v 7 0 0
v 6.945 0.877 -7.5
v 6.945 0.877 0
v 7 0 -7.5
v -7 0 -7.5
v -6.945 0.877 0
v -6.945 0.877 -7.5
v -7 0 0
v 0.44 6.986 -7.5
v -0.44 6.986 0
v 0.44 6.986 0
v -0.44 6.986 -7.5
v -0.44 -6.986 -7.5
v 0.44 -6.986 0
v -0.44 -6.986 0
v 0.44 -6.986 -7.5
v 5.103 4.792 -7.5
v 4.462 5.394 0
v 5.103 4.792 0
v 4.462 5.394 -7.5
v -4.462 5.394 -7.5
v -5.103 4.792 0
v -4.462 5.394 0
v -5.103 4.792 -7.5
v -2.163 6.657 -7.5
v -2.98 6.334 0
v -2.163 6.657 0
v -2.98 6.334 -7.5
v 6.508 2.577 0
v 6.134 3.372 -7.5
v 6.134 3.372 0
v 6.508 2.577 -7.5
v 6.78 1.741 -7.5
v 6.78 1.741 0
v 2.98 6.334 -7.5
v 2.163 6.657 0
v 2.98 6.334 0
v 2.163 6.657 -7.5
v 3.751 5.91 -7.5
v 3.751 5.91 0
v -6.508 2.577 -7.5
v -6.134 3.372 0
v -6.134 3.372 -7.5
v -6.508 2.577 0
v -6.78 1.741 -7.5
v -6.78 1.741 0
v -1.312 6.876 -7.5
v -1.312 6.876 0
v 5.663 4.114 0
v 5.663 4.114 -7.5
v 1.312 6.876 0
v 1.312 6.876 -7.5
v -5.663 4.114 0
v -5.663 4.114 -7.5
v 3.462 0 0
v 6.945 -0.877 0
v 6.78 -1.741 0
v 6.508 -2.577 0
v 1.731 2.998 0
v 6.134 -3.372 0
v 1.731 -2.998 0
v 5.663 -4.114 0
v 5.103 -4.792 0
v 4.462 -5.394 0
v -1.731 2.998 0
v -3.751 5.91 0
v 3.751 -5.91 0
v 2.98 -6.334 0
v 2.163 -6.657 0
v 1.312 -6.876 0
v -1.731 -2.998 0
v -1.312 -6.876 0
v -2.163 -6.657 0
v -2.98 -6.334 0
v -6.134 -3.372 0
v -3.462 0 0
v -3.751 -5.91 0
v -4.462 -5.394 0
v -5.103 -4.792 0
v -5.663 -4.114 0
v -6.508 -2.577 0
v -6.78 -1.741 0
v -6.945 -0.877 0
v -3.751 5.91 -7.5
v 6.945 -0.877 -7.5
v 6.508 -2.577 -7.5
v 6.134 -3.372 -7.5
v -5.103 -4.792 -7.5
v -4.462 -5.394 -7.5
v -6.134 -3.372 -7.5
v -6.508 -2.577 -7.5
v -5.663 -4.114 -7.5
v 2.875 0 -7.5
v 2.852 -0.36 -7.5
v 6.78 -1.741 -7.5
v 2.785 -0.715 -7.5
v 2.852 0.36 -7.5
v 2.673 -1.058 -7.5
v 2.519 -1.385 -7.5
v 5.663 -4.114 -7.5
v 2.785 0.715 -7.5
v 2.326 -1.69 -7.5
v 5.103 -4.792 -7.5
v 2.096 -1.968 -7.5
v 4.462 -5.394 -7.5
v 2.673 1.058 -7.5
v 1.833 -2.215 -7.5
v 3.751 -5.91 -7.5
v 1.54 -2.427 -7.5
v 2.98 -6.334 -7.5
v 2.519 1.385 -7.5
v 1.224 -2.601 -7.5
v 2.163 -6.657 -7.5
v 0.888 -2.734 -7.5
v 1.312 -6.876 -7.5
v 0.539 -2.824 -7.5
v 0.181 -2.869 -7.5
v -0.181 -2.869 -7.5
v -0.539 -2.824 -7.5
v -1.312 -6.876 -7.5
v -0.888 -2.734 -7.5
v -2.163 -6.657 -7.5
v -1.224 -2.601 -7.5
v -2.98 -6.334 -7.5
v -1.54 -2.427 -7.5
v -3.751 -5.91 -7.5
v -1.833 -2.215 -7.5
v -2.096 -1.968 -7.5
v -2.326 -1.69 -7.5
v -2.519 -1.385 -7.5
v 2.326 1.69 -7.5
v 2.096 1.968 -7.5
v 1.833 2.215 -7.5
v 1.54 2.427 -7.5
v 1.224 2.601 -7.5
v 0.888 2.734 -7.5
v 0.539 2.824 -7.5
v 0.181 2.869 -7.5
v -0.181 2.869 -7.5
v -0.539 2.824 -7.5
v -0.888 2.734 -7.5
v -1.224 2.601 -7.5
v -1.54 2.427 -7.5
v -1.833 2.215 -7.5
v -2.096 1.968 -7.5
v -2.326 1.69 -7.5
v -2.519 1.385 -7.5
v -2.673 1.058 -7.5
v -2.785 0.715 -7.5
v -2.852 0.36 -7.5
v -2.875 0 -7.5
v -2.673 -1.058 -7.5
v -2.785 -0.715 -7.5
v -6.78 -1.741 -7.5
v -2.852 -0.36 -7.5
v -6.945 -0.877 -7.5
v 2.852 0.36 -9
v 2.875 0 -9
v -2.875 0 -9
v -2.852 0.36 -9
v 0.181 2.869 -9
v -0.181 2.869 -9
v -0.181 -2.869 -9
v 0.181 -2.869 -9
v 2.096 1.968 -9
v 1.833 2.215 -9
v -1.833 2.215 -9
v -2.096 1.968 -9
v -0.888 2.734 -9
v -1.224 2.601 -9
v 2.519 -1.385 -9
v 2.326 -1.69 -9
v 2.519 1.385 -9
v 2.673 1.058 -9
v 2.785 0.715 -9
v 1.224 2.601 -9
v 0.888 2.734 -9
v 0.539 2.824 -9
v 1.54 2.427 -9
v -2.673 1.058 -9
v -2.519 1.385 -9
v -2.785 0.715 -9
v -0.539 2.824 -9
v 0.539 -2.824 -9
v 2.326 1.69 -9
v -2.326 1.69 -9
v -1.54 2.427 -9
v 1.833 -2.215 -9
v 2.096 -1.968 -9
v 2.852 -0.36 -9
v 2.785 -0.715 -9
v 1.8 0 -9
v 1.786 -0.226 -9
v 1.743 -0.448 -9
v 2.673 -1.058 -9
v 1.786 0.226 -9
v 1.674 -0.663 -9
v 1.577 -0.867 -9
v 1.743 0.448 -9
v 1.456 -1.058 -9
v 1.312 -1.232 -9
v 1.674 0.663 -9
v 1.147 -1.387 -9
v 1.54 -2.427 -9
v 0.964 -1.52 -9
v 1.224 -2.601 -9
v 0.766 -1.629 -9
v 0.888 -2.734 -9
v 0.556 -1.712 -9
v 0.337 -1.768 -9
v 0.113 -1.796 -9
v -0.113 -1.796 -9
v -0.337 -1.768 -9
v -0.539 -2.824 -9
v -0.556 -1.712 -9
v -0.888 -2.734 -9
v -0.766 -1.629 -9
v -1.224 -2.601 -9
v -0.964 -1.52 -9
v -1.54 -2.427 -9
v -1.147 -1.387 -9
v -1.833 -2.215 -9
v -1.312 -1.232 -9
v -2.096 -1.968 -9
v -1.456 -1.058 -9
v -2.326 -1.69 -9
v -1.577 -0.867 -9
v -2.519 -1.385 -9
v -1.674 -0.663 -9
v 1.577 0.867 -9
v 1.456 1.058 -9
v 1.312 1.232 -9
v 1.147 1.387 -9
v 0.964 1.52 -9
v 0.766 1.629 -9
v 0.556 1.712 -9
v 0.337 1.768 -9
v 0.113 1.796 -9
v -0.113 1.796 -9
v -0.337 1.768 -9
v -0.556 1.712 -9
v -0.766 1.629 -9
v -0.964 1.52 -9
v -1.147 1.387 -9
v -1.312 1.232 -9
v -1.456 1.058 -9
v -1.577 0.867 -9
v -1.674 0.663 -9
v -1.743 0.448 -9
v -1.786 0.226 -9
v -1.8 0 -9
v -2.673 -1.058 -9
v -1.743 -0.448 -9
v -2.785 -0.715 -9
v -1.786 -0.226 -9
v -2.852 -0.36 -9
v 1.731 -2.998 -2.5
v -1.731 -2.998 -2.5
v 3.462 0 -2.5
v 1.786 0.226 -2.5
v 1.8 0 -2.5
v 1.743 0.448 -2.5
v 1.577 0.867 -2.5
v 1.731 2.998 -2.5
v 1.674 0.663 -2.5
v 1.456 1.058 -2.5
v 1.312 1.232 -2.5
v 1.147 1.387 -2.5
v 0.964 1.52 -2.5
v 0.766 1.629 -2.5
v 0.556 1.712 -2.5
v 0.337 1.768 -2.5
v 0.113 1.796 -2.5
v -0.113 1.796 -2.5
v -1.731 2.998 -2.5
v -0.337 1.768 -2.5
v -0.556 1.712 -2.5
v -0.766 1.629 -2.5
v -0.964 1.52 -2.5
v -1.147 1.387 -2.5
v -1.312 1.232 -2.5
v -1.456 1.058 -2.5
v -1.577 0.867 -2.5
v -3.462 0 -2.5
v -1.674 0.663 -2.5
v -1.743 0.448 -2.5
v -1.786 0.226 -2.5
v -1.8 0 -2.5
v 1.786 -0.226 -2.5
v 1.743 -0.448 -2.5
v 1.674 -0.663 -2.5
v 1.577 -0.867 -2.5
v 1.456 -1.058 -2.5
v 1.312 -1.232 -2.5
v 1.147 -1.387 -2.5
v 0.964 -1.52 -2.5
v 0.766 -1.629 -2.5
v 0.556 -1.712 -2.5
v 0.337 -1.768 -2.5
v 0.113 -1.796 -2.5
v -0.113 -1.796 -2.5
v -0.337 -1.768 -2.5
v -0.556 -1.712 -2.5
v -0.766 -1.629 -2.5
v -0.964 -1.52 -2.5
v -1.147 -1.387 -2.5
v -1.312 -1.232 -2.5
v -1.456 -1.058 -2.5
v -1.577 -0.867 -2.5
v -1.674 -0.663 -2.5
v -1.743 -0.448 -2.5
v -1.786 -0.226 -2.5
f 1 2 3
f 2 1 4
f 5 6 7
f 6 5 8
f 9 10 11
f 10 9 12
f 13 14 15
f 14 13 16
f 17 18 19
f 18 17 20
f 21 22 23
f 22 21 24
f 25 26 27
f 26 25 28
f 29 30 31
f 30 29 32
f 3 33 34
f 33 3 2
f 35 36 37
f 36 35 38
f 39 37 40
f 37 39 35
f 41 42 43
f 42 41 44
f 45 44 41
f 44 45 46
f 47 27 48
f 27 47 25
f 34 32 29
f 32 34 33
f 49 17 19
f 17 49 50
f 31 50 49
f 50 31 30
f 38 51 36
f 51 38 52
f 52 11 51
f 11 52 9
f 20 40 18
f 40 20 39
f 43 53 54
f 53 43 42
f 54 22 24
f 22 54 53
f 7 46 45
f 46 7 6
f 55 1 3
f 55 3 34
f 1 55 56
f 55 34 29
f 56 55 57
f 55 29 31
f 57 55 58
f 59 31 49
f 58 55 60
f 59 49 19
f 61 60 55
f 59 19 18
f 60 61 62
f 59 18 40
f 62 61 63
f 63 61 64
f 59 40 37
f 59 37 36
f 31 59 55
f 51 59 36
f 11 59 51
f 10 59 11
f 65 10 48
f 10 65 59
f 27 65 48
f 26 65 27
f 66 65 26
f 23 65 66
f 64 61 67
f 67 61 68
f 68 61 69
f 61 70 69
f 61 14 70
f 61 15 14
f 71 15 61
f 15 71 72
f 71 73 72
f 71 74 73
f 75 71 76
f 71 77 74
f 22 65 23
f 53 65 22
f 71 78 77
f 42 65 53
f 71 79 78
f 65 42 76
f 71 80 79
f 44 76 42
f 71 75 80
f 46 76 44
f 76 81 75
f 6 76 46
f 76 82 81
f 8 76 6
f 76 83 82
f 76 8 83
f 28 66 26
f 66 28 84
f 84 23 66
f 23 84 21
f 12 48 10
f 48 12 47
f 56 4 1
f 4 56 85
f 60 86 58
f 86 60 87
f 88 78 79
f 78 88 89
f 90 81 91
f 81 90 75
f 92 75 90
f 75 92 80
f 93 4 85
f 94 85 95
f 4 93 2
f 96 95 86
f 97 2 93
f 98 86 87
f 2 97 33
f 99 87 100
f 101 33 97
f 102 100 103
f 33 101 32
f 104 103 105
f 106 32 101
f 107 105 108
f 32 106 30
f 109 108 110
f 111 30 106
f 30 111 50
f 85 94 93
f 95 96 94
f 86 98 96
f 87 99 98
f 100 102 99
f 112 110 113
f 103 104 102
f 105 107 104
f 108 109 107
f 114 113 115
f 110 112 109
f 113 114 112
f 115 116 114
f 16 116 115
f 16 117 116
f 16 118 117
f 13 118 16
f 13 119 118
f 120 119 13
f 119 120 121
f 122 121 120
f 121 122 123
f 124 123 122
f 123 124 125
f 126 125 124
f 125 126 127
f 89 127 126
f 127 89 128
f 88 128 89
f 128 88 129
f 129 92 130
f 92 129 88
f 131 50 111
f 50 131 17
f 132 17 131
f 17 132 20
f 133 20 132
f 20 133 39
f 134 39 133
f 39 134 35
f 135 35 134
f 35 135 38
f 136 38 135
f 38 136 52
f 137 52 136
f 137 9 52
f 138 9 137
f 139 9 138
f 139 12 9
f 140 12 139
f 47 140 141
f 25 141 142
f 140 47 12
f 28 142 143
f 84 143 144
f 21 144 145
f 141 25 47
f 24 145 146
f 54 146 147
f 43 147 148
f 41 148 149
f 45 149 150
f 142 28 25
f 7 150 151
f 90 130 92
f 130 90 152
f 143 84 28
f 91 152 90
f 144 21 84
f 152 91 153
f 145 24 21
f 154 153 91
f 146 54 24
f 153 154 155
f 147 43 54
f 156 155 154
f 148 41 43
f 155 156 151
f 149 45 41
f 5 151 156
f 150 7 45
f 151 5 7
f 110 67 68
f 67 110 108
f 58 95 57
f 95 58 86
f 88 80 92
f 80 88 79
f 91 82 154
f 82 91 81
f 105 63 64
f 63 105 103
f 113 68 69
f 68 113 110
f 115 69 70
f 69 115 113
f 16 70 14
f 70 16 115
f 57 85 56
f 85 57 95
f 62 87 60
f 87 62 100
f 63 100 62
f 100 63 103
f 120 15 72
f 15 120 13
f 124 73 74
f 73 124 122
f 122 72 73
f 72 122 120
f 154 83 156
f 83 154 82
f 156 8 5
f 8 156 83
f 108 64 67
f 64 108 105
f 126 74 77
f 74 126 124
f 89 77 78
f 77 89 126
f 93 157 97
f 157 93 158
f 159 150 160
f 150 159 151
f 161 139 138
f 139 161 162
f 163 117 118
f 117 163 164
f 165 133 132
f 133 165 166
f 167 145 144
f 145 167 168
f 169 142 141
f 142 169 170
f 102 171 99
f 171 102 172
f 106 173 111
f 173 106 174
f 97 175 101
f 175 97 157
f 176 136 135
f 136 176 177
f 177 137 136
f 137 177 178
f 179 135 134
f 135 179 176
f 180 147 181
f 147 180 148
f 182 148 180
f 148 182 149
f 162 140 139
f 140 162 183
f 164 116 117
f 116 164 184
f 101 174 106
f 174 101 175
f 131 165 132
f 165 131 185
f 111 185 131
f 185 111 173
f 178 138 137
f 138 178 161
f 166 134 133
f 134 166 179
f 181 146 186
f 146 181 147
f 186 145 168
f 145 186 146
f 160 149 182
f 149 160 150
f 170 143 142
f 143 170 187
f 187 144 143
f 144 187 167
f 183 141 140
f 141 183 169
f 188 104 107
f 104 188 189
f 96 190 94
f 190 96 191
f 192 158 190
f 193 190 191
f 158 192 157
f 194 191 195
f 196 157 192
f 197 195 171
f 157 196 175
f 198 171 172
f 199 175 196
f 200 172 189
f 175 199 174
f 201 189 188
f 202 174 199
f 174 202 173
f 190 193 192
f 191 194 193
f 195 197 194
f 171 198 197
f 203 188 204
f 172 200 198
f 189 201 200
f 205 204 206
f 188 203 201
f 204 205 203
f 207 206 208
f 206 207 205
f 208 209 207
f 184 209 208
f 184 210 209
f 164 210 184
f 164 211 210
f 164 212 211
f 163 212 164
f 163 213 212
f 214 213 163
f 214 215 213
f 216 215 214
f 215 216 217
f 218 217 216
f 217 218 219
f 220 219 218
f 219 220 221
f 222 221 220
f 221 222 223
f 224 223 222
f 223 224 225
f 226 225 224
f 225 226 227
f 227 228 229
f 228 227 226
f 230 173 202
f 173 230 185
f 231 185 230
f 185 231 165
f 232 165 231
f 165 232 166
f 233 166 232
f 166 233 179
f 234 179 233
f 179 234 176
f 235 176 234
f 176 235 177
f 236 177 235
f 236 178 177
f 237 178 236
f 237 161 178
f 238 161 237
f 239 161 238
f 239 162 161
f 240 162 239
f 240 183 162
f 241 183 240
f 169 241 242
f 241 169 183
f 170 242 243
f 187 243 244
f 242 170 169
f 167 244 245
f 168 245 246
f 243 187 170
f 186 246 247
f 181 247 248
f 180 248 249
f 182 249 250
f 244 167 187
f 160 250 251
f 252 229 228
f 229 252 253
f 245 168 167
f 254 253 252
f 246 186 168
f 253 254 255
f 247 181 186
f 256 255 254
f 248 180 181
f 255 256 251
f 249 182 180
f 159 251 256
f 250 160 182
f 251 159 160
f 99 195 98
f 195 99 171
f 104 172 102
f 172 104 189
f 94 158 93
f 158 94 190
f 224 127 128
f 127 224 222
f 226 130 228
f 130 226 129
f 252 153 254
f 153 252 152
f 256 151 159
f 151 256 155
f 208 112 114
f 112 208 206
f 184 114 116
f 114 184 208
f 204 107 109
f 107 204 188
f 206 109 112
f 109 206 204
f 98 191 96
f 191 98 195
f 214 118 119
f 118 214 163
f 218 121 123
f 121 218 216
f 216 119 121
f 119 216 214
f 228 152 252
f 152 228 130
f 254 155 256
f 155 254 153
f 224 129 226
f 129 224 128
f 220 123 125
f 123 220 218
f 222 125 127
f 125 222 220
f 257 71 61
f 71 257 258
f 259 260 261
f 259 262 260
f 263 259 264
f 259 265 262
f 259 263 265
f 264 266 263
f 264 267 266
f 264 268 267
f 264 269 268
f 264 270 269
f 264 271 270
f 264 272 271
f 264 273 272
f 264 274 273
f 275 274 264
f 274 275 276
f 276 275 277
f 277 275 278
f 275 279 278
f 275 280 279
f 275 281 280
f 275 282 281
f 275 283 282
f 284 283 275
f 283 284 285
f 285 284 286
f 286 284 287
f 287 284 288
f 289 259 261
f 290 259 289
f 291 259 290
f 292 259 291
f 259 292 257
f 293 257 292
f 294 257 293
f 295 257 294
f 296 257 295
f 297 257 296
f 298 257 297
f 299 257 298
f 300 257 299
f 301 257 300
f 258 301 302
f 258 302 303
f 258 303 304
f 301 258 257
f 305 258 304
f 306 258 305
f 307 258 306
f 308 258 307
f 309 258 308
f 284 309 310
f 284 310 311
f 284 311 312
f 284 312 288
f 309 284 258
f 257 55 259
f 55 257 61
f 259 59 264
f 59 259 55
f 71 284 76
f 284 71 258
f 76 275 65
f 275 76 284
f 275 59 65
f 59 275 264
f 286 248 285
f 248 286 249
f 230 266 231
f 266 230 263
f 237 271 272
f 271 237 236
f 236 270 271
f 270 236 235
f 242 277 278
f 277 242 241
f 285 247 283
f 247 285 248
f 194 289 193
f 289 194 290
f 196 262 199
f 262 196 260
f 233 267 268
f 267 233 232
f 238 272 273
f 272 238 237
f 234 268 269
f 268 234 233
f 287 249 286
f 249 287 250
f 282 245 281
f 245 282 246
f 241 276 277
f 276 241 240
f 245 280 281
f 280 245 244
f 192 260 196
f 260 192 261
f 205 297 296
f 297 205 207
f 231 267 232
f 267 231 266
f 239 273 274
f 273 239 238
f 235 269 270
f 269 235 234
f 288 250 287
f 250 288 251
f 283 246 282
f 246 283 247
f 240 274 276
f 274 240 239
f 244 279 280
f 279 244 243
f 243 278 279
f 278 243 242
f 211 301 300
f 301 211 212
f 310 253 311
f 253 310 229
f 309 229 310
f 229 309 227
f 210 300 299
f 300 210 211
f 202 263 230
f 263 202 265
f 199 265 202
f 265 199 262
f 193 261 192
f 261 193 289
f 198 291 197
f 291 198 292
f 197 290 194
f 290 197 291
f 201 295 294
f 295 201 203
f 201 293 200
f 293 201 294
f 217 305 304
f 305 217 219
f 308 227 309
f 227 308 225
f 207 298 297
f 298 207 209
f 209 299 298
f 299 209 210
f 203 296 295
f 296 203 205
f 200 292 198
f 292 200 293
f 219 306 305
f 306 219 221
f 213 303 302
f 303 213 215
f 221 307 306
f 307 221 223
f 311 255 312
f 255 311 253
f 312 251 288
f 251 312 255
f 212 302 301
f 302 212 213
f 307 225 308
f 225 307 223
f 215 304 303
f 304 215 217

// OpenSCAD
$fn = 50;


difference() {
	union() {
		translate(v = [0, 0, -7.5000000000]) {
			cylinder(h = 7.5000000000, r = 7.0000000000);
		}
		translate(v = [0, 0, -9.0000000000]) {
			cylinder(h = 9, r = 2.8750000000);
		}
	}
	union() {
		translate(v = [0, 0, 0]) {
			rotate(a = [0, 0, 0]) {
				difference() {
					union() {
						translate(v = [0, 0, -2.5000000000]) {
							linear_extrude(height = 2.5000000000) {
								polygon(points = [[3.4620000000, 0.0000000000], [1.7310000000, 2.9981799479], [-1.7310000000, 2.9981799479], [-3.4620000000, 0.0000000000], [-1.7310000000, -2.9981799479], [1.7310000000, -2.9981799479]]);
							}
						}
					}
					union();
				}
			}
		}
		#translate(v = [0, 0, -100.0000000000]) {
			cylinder(h = 200, r = 1.8000000000);
		}
	}
}
